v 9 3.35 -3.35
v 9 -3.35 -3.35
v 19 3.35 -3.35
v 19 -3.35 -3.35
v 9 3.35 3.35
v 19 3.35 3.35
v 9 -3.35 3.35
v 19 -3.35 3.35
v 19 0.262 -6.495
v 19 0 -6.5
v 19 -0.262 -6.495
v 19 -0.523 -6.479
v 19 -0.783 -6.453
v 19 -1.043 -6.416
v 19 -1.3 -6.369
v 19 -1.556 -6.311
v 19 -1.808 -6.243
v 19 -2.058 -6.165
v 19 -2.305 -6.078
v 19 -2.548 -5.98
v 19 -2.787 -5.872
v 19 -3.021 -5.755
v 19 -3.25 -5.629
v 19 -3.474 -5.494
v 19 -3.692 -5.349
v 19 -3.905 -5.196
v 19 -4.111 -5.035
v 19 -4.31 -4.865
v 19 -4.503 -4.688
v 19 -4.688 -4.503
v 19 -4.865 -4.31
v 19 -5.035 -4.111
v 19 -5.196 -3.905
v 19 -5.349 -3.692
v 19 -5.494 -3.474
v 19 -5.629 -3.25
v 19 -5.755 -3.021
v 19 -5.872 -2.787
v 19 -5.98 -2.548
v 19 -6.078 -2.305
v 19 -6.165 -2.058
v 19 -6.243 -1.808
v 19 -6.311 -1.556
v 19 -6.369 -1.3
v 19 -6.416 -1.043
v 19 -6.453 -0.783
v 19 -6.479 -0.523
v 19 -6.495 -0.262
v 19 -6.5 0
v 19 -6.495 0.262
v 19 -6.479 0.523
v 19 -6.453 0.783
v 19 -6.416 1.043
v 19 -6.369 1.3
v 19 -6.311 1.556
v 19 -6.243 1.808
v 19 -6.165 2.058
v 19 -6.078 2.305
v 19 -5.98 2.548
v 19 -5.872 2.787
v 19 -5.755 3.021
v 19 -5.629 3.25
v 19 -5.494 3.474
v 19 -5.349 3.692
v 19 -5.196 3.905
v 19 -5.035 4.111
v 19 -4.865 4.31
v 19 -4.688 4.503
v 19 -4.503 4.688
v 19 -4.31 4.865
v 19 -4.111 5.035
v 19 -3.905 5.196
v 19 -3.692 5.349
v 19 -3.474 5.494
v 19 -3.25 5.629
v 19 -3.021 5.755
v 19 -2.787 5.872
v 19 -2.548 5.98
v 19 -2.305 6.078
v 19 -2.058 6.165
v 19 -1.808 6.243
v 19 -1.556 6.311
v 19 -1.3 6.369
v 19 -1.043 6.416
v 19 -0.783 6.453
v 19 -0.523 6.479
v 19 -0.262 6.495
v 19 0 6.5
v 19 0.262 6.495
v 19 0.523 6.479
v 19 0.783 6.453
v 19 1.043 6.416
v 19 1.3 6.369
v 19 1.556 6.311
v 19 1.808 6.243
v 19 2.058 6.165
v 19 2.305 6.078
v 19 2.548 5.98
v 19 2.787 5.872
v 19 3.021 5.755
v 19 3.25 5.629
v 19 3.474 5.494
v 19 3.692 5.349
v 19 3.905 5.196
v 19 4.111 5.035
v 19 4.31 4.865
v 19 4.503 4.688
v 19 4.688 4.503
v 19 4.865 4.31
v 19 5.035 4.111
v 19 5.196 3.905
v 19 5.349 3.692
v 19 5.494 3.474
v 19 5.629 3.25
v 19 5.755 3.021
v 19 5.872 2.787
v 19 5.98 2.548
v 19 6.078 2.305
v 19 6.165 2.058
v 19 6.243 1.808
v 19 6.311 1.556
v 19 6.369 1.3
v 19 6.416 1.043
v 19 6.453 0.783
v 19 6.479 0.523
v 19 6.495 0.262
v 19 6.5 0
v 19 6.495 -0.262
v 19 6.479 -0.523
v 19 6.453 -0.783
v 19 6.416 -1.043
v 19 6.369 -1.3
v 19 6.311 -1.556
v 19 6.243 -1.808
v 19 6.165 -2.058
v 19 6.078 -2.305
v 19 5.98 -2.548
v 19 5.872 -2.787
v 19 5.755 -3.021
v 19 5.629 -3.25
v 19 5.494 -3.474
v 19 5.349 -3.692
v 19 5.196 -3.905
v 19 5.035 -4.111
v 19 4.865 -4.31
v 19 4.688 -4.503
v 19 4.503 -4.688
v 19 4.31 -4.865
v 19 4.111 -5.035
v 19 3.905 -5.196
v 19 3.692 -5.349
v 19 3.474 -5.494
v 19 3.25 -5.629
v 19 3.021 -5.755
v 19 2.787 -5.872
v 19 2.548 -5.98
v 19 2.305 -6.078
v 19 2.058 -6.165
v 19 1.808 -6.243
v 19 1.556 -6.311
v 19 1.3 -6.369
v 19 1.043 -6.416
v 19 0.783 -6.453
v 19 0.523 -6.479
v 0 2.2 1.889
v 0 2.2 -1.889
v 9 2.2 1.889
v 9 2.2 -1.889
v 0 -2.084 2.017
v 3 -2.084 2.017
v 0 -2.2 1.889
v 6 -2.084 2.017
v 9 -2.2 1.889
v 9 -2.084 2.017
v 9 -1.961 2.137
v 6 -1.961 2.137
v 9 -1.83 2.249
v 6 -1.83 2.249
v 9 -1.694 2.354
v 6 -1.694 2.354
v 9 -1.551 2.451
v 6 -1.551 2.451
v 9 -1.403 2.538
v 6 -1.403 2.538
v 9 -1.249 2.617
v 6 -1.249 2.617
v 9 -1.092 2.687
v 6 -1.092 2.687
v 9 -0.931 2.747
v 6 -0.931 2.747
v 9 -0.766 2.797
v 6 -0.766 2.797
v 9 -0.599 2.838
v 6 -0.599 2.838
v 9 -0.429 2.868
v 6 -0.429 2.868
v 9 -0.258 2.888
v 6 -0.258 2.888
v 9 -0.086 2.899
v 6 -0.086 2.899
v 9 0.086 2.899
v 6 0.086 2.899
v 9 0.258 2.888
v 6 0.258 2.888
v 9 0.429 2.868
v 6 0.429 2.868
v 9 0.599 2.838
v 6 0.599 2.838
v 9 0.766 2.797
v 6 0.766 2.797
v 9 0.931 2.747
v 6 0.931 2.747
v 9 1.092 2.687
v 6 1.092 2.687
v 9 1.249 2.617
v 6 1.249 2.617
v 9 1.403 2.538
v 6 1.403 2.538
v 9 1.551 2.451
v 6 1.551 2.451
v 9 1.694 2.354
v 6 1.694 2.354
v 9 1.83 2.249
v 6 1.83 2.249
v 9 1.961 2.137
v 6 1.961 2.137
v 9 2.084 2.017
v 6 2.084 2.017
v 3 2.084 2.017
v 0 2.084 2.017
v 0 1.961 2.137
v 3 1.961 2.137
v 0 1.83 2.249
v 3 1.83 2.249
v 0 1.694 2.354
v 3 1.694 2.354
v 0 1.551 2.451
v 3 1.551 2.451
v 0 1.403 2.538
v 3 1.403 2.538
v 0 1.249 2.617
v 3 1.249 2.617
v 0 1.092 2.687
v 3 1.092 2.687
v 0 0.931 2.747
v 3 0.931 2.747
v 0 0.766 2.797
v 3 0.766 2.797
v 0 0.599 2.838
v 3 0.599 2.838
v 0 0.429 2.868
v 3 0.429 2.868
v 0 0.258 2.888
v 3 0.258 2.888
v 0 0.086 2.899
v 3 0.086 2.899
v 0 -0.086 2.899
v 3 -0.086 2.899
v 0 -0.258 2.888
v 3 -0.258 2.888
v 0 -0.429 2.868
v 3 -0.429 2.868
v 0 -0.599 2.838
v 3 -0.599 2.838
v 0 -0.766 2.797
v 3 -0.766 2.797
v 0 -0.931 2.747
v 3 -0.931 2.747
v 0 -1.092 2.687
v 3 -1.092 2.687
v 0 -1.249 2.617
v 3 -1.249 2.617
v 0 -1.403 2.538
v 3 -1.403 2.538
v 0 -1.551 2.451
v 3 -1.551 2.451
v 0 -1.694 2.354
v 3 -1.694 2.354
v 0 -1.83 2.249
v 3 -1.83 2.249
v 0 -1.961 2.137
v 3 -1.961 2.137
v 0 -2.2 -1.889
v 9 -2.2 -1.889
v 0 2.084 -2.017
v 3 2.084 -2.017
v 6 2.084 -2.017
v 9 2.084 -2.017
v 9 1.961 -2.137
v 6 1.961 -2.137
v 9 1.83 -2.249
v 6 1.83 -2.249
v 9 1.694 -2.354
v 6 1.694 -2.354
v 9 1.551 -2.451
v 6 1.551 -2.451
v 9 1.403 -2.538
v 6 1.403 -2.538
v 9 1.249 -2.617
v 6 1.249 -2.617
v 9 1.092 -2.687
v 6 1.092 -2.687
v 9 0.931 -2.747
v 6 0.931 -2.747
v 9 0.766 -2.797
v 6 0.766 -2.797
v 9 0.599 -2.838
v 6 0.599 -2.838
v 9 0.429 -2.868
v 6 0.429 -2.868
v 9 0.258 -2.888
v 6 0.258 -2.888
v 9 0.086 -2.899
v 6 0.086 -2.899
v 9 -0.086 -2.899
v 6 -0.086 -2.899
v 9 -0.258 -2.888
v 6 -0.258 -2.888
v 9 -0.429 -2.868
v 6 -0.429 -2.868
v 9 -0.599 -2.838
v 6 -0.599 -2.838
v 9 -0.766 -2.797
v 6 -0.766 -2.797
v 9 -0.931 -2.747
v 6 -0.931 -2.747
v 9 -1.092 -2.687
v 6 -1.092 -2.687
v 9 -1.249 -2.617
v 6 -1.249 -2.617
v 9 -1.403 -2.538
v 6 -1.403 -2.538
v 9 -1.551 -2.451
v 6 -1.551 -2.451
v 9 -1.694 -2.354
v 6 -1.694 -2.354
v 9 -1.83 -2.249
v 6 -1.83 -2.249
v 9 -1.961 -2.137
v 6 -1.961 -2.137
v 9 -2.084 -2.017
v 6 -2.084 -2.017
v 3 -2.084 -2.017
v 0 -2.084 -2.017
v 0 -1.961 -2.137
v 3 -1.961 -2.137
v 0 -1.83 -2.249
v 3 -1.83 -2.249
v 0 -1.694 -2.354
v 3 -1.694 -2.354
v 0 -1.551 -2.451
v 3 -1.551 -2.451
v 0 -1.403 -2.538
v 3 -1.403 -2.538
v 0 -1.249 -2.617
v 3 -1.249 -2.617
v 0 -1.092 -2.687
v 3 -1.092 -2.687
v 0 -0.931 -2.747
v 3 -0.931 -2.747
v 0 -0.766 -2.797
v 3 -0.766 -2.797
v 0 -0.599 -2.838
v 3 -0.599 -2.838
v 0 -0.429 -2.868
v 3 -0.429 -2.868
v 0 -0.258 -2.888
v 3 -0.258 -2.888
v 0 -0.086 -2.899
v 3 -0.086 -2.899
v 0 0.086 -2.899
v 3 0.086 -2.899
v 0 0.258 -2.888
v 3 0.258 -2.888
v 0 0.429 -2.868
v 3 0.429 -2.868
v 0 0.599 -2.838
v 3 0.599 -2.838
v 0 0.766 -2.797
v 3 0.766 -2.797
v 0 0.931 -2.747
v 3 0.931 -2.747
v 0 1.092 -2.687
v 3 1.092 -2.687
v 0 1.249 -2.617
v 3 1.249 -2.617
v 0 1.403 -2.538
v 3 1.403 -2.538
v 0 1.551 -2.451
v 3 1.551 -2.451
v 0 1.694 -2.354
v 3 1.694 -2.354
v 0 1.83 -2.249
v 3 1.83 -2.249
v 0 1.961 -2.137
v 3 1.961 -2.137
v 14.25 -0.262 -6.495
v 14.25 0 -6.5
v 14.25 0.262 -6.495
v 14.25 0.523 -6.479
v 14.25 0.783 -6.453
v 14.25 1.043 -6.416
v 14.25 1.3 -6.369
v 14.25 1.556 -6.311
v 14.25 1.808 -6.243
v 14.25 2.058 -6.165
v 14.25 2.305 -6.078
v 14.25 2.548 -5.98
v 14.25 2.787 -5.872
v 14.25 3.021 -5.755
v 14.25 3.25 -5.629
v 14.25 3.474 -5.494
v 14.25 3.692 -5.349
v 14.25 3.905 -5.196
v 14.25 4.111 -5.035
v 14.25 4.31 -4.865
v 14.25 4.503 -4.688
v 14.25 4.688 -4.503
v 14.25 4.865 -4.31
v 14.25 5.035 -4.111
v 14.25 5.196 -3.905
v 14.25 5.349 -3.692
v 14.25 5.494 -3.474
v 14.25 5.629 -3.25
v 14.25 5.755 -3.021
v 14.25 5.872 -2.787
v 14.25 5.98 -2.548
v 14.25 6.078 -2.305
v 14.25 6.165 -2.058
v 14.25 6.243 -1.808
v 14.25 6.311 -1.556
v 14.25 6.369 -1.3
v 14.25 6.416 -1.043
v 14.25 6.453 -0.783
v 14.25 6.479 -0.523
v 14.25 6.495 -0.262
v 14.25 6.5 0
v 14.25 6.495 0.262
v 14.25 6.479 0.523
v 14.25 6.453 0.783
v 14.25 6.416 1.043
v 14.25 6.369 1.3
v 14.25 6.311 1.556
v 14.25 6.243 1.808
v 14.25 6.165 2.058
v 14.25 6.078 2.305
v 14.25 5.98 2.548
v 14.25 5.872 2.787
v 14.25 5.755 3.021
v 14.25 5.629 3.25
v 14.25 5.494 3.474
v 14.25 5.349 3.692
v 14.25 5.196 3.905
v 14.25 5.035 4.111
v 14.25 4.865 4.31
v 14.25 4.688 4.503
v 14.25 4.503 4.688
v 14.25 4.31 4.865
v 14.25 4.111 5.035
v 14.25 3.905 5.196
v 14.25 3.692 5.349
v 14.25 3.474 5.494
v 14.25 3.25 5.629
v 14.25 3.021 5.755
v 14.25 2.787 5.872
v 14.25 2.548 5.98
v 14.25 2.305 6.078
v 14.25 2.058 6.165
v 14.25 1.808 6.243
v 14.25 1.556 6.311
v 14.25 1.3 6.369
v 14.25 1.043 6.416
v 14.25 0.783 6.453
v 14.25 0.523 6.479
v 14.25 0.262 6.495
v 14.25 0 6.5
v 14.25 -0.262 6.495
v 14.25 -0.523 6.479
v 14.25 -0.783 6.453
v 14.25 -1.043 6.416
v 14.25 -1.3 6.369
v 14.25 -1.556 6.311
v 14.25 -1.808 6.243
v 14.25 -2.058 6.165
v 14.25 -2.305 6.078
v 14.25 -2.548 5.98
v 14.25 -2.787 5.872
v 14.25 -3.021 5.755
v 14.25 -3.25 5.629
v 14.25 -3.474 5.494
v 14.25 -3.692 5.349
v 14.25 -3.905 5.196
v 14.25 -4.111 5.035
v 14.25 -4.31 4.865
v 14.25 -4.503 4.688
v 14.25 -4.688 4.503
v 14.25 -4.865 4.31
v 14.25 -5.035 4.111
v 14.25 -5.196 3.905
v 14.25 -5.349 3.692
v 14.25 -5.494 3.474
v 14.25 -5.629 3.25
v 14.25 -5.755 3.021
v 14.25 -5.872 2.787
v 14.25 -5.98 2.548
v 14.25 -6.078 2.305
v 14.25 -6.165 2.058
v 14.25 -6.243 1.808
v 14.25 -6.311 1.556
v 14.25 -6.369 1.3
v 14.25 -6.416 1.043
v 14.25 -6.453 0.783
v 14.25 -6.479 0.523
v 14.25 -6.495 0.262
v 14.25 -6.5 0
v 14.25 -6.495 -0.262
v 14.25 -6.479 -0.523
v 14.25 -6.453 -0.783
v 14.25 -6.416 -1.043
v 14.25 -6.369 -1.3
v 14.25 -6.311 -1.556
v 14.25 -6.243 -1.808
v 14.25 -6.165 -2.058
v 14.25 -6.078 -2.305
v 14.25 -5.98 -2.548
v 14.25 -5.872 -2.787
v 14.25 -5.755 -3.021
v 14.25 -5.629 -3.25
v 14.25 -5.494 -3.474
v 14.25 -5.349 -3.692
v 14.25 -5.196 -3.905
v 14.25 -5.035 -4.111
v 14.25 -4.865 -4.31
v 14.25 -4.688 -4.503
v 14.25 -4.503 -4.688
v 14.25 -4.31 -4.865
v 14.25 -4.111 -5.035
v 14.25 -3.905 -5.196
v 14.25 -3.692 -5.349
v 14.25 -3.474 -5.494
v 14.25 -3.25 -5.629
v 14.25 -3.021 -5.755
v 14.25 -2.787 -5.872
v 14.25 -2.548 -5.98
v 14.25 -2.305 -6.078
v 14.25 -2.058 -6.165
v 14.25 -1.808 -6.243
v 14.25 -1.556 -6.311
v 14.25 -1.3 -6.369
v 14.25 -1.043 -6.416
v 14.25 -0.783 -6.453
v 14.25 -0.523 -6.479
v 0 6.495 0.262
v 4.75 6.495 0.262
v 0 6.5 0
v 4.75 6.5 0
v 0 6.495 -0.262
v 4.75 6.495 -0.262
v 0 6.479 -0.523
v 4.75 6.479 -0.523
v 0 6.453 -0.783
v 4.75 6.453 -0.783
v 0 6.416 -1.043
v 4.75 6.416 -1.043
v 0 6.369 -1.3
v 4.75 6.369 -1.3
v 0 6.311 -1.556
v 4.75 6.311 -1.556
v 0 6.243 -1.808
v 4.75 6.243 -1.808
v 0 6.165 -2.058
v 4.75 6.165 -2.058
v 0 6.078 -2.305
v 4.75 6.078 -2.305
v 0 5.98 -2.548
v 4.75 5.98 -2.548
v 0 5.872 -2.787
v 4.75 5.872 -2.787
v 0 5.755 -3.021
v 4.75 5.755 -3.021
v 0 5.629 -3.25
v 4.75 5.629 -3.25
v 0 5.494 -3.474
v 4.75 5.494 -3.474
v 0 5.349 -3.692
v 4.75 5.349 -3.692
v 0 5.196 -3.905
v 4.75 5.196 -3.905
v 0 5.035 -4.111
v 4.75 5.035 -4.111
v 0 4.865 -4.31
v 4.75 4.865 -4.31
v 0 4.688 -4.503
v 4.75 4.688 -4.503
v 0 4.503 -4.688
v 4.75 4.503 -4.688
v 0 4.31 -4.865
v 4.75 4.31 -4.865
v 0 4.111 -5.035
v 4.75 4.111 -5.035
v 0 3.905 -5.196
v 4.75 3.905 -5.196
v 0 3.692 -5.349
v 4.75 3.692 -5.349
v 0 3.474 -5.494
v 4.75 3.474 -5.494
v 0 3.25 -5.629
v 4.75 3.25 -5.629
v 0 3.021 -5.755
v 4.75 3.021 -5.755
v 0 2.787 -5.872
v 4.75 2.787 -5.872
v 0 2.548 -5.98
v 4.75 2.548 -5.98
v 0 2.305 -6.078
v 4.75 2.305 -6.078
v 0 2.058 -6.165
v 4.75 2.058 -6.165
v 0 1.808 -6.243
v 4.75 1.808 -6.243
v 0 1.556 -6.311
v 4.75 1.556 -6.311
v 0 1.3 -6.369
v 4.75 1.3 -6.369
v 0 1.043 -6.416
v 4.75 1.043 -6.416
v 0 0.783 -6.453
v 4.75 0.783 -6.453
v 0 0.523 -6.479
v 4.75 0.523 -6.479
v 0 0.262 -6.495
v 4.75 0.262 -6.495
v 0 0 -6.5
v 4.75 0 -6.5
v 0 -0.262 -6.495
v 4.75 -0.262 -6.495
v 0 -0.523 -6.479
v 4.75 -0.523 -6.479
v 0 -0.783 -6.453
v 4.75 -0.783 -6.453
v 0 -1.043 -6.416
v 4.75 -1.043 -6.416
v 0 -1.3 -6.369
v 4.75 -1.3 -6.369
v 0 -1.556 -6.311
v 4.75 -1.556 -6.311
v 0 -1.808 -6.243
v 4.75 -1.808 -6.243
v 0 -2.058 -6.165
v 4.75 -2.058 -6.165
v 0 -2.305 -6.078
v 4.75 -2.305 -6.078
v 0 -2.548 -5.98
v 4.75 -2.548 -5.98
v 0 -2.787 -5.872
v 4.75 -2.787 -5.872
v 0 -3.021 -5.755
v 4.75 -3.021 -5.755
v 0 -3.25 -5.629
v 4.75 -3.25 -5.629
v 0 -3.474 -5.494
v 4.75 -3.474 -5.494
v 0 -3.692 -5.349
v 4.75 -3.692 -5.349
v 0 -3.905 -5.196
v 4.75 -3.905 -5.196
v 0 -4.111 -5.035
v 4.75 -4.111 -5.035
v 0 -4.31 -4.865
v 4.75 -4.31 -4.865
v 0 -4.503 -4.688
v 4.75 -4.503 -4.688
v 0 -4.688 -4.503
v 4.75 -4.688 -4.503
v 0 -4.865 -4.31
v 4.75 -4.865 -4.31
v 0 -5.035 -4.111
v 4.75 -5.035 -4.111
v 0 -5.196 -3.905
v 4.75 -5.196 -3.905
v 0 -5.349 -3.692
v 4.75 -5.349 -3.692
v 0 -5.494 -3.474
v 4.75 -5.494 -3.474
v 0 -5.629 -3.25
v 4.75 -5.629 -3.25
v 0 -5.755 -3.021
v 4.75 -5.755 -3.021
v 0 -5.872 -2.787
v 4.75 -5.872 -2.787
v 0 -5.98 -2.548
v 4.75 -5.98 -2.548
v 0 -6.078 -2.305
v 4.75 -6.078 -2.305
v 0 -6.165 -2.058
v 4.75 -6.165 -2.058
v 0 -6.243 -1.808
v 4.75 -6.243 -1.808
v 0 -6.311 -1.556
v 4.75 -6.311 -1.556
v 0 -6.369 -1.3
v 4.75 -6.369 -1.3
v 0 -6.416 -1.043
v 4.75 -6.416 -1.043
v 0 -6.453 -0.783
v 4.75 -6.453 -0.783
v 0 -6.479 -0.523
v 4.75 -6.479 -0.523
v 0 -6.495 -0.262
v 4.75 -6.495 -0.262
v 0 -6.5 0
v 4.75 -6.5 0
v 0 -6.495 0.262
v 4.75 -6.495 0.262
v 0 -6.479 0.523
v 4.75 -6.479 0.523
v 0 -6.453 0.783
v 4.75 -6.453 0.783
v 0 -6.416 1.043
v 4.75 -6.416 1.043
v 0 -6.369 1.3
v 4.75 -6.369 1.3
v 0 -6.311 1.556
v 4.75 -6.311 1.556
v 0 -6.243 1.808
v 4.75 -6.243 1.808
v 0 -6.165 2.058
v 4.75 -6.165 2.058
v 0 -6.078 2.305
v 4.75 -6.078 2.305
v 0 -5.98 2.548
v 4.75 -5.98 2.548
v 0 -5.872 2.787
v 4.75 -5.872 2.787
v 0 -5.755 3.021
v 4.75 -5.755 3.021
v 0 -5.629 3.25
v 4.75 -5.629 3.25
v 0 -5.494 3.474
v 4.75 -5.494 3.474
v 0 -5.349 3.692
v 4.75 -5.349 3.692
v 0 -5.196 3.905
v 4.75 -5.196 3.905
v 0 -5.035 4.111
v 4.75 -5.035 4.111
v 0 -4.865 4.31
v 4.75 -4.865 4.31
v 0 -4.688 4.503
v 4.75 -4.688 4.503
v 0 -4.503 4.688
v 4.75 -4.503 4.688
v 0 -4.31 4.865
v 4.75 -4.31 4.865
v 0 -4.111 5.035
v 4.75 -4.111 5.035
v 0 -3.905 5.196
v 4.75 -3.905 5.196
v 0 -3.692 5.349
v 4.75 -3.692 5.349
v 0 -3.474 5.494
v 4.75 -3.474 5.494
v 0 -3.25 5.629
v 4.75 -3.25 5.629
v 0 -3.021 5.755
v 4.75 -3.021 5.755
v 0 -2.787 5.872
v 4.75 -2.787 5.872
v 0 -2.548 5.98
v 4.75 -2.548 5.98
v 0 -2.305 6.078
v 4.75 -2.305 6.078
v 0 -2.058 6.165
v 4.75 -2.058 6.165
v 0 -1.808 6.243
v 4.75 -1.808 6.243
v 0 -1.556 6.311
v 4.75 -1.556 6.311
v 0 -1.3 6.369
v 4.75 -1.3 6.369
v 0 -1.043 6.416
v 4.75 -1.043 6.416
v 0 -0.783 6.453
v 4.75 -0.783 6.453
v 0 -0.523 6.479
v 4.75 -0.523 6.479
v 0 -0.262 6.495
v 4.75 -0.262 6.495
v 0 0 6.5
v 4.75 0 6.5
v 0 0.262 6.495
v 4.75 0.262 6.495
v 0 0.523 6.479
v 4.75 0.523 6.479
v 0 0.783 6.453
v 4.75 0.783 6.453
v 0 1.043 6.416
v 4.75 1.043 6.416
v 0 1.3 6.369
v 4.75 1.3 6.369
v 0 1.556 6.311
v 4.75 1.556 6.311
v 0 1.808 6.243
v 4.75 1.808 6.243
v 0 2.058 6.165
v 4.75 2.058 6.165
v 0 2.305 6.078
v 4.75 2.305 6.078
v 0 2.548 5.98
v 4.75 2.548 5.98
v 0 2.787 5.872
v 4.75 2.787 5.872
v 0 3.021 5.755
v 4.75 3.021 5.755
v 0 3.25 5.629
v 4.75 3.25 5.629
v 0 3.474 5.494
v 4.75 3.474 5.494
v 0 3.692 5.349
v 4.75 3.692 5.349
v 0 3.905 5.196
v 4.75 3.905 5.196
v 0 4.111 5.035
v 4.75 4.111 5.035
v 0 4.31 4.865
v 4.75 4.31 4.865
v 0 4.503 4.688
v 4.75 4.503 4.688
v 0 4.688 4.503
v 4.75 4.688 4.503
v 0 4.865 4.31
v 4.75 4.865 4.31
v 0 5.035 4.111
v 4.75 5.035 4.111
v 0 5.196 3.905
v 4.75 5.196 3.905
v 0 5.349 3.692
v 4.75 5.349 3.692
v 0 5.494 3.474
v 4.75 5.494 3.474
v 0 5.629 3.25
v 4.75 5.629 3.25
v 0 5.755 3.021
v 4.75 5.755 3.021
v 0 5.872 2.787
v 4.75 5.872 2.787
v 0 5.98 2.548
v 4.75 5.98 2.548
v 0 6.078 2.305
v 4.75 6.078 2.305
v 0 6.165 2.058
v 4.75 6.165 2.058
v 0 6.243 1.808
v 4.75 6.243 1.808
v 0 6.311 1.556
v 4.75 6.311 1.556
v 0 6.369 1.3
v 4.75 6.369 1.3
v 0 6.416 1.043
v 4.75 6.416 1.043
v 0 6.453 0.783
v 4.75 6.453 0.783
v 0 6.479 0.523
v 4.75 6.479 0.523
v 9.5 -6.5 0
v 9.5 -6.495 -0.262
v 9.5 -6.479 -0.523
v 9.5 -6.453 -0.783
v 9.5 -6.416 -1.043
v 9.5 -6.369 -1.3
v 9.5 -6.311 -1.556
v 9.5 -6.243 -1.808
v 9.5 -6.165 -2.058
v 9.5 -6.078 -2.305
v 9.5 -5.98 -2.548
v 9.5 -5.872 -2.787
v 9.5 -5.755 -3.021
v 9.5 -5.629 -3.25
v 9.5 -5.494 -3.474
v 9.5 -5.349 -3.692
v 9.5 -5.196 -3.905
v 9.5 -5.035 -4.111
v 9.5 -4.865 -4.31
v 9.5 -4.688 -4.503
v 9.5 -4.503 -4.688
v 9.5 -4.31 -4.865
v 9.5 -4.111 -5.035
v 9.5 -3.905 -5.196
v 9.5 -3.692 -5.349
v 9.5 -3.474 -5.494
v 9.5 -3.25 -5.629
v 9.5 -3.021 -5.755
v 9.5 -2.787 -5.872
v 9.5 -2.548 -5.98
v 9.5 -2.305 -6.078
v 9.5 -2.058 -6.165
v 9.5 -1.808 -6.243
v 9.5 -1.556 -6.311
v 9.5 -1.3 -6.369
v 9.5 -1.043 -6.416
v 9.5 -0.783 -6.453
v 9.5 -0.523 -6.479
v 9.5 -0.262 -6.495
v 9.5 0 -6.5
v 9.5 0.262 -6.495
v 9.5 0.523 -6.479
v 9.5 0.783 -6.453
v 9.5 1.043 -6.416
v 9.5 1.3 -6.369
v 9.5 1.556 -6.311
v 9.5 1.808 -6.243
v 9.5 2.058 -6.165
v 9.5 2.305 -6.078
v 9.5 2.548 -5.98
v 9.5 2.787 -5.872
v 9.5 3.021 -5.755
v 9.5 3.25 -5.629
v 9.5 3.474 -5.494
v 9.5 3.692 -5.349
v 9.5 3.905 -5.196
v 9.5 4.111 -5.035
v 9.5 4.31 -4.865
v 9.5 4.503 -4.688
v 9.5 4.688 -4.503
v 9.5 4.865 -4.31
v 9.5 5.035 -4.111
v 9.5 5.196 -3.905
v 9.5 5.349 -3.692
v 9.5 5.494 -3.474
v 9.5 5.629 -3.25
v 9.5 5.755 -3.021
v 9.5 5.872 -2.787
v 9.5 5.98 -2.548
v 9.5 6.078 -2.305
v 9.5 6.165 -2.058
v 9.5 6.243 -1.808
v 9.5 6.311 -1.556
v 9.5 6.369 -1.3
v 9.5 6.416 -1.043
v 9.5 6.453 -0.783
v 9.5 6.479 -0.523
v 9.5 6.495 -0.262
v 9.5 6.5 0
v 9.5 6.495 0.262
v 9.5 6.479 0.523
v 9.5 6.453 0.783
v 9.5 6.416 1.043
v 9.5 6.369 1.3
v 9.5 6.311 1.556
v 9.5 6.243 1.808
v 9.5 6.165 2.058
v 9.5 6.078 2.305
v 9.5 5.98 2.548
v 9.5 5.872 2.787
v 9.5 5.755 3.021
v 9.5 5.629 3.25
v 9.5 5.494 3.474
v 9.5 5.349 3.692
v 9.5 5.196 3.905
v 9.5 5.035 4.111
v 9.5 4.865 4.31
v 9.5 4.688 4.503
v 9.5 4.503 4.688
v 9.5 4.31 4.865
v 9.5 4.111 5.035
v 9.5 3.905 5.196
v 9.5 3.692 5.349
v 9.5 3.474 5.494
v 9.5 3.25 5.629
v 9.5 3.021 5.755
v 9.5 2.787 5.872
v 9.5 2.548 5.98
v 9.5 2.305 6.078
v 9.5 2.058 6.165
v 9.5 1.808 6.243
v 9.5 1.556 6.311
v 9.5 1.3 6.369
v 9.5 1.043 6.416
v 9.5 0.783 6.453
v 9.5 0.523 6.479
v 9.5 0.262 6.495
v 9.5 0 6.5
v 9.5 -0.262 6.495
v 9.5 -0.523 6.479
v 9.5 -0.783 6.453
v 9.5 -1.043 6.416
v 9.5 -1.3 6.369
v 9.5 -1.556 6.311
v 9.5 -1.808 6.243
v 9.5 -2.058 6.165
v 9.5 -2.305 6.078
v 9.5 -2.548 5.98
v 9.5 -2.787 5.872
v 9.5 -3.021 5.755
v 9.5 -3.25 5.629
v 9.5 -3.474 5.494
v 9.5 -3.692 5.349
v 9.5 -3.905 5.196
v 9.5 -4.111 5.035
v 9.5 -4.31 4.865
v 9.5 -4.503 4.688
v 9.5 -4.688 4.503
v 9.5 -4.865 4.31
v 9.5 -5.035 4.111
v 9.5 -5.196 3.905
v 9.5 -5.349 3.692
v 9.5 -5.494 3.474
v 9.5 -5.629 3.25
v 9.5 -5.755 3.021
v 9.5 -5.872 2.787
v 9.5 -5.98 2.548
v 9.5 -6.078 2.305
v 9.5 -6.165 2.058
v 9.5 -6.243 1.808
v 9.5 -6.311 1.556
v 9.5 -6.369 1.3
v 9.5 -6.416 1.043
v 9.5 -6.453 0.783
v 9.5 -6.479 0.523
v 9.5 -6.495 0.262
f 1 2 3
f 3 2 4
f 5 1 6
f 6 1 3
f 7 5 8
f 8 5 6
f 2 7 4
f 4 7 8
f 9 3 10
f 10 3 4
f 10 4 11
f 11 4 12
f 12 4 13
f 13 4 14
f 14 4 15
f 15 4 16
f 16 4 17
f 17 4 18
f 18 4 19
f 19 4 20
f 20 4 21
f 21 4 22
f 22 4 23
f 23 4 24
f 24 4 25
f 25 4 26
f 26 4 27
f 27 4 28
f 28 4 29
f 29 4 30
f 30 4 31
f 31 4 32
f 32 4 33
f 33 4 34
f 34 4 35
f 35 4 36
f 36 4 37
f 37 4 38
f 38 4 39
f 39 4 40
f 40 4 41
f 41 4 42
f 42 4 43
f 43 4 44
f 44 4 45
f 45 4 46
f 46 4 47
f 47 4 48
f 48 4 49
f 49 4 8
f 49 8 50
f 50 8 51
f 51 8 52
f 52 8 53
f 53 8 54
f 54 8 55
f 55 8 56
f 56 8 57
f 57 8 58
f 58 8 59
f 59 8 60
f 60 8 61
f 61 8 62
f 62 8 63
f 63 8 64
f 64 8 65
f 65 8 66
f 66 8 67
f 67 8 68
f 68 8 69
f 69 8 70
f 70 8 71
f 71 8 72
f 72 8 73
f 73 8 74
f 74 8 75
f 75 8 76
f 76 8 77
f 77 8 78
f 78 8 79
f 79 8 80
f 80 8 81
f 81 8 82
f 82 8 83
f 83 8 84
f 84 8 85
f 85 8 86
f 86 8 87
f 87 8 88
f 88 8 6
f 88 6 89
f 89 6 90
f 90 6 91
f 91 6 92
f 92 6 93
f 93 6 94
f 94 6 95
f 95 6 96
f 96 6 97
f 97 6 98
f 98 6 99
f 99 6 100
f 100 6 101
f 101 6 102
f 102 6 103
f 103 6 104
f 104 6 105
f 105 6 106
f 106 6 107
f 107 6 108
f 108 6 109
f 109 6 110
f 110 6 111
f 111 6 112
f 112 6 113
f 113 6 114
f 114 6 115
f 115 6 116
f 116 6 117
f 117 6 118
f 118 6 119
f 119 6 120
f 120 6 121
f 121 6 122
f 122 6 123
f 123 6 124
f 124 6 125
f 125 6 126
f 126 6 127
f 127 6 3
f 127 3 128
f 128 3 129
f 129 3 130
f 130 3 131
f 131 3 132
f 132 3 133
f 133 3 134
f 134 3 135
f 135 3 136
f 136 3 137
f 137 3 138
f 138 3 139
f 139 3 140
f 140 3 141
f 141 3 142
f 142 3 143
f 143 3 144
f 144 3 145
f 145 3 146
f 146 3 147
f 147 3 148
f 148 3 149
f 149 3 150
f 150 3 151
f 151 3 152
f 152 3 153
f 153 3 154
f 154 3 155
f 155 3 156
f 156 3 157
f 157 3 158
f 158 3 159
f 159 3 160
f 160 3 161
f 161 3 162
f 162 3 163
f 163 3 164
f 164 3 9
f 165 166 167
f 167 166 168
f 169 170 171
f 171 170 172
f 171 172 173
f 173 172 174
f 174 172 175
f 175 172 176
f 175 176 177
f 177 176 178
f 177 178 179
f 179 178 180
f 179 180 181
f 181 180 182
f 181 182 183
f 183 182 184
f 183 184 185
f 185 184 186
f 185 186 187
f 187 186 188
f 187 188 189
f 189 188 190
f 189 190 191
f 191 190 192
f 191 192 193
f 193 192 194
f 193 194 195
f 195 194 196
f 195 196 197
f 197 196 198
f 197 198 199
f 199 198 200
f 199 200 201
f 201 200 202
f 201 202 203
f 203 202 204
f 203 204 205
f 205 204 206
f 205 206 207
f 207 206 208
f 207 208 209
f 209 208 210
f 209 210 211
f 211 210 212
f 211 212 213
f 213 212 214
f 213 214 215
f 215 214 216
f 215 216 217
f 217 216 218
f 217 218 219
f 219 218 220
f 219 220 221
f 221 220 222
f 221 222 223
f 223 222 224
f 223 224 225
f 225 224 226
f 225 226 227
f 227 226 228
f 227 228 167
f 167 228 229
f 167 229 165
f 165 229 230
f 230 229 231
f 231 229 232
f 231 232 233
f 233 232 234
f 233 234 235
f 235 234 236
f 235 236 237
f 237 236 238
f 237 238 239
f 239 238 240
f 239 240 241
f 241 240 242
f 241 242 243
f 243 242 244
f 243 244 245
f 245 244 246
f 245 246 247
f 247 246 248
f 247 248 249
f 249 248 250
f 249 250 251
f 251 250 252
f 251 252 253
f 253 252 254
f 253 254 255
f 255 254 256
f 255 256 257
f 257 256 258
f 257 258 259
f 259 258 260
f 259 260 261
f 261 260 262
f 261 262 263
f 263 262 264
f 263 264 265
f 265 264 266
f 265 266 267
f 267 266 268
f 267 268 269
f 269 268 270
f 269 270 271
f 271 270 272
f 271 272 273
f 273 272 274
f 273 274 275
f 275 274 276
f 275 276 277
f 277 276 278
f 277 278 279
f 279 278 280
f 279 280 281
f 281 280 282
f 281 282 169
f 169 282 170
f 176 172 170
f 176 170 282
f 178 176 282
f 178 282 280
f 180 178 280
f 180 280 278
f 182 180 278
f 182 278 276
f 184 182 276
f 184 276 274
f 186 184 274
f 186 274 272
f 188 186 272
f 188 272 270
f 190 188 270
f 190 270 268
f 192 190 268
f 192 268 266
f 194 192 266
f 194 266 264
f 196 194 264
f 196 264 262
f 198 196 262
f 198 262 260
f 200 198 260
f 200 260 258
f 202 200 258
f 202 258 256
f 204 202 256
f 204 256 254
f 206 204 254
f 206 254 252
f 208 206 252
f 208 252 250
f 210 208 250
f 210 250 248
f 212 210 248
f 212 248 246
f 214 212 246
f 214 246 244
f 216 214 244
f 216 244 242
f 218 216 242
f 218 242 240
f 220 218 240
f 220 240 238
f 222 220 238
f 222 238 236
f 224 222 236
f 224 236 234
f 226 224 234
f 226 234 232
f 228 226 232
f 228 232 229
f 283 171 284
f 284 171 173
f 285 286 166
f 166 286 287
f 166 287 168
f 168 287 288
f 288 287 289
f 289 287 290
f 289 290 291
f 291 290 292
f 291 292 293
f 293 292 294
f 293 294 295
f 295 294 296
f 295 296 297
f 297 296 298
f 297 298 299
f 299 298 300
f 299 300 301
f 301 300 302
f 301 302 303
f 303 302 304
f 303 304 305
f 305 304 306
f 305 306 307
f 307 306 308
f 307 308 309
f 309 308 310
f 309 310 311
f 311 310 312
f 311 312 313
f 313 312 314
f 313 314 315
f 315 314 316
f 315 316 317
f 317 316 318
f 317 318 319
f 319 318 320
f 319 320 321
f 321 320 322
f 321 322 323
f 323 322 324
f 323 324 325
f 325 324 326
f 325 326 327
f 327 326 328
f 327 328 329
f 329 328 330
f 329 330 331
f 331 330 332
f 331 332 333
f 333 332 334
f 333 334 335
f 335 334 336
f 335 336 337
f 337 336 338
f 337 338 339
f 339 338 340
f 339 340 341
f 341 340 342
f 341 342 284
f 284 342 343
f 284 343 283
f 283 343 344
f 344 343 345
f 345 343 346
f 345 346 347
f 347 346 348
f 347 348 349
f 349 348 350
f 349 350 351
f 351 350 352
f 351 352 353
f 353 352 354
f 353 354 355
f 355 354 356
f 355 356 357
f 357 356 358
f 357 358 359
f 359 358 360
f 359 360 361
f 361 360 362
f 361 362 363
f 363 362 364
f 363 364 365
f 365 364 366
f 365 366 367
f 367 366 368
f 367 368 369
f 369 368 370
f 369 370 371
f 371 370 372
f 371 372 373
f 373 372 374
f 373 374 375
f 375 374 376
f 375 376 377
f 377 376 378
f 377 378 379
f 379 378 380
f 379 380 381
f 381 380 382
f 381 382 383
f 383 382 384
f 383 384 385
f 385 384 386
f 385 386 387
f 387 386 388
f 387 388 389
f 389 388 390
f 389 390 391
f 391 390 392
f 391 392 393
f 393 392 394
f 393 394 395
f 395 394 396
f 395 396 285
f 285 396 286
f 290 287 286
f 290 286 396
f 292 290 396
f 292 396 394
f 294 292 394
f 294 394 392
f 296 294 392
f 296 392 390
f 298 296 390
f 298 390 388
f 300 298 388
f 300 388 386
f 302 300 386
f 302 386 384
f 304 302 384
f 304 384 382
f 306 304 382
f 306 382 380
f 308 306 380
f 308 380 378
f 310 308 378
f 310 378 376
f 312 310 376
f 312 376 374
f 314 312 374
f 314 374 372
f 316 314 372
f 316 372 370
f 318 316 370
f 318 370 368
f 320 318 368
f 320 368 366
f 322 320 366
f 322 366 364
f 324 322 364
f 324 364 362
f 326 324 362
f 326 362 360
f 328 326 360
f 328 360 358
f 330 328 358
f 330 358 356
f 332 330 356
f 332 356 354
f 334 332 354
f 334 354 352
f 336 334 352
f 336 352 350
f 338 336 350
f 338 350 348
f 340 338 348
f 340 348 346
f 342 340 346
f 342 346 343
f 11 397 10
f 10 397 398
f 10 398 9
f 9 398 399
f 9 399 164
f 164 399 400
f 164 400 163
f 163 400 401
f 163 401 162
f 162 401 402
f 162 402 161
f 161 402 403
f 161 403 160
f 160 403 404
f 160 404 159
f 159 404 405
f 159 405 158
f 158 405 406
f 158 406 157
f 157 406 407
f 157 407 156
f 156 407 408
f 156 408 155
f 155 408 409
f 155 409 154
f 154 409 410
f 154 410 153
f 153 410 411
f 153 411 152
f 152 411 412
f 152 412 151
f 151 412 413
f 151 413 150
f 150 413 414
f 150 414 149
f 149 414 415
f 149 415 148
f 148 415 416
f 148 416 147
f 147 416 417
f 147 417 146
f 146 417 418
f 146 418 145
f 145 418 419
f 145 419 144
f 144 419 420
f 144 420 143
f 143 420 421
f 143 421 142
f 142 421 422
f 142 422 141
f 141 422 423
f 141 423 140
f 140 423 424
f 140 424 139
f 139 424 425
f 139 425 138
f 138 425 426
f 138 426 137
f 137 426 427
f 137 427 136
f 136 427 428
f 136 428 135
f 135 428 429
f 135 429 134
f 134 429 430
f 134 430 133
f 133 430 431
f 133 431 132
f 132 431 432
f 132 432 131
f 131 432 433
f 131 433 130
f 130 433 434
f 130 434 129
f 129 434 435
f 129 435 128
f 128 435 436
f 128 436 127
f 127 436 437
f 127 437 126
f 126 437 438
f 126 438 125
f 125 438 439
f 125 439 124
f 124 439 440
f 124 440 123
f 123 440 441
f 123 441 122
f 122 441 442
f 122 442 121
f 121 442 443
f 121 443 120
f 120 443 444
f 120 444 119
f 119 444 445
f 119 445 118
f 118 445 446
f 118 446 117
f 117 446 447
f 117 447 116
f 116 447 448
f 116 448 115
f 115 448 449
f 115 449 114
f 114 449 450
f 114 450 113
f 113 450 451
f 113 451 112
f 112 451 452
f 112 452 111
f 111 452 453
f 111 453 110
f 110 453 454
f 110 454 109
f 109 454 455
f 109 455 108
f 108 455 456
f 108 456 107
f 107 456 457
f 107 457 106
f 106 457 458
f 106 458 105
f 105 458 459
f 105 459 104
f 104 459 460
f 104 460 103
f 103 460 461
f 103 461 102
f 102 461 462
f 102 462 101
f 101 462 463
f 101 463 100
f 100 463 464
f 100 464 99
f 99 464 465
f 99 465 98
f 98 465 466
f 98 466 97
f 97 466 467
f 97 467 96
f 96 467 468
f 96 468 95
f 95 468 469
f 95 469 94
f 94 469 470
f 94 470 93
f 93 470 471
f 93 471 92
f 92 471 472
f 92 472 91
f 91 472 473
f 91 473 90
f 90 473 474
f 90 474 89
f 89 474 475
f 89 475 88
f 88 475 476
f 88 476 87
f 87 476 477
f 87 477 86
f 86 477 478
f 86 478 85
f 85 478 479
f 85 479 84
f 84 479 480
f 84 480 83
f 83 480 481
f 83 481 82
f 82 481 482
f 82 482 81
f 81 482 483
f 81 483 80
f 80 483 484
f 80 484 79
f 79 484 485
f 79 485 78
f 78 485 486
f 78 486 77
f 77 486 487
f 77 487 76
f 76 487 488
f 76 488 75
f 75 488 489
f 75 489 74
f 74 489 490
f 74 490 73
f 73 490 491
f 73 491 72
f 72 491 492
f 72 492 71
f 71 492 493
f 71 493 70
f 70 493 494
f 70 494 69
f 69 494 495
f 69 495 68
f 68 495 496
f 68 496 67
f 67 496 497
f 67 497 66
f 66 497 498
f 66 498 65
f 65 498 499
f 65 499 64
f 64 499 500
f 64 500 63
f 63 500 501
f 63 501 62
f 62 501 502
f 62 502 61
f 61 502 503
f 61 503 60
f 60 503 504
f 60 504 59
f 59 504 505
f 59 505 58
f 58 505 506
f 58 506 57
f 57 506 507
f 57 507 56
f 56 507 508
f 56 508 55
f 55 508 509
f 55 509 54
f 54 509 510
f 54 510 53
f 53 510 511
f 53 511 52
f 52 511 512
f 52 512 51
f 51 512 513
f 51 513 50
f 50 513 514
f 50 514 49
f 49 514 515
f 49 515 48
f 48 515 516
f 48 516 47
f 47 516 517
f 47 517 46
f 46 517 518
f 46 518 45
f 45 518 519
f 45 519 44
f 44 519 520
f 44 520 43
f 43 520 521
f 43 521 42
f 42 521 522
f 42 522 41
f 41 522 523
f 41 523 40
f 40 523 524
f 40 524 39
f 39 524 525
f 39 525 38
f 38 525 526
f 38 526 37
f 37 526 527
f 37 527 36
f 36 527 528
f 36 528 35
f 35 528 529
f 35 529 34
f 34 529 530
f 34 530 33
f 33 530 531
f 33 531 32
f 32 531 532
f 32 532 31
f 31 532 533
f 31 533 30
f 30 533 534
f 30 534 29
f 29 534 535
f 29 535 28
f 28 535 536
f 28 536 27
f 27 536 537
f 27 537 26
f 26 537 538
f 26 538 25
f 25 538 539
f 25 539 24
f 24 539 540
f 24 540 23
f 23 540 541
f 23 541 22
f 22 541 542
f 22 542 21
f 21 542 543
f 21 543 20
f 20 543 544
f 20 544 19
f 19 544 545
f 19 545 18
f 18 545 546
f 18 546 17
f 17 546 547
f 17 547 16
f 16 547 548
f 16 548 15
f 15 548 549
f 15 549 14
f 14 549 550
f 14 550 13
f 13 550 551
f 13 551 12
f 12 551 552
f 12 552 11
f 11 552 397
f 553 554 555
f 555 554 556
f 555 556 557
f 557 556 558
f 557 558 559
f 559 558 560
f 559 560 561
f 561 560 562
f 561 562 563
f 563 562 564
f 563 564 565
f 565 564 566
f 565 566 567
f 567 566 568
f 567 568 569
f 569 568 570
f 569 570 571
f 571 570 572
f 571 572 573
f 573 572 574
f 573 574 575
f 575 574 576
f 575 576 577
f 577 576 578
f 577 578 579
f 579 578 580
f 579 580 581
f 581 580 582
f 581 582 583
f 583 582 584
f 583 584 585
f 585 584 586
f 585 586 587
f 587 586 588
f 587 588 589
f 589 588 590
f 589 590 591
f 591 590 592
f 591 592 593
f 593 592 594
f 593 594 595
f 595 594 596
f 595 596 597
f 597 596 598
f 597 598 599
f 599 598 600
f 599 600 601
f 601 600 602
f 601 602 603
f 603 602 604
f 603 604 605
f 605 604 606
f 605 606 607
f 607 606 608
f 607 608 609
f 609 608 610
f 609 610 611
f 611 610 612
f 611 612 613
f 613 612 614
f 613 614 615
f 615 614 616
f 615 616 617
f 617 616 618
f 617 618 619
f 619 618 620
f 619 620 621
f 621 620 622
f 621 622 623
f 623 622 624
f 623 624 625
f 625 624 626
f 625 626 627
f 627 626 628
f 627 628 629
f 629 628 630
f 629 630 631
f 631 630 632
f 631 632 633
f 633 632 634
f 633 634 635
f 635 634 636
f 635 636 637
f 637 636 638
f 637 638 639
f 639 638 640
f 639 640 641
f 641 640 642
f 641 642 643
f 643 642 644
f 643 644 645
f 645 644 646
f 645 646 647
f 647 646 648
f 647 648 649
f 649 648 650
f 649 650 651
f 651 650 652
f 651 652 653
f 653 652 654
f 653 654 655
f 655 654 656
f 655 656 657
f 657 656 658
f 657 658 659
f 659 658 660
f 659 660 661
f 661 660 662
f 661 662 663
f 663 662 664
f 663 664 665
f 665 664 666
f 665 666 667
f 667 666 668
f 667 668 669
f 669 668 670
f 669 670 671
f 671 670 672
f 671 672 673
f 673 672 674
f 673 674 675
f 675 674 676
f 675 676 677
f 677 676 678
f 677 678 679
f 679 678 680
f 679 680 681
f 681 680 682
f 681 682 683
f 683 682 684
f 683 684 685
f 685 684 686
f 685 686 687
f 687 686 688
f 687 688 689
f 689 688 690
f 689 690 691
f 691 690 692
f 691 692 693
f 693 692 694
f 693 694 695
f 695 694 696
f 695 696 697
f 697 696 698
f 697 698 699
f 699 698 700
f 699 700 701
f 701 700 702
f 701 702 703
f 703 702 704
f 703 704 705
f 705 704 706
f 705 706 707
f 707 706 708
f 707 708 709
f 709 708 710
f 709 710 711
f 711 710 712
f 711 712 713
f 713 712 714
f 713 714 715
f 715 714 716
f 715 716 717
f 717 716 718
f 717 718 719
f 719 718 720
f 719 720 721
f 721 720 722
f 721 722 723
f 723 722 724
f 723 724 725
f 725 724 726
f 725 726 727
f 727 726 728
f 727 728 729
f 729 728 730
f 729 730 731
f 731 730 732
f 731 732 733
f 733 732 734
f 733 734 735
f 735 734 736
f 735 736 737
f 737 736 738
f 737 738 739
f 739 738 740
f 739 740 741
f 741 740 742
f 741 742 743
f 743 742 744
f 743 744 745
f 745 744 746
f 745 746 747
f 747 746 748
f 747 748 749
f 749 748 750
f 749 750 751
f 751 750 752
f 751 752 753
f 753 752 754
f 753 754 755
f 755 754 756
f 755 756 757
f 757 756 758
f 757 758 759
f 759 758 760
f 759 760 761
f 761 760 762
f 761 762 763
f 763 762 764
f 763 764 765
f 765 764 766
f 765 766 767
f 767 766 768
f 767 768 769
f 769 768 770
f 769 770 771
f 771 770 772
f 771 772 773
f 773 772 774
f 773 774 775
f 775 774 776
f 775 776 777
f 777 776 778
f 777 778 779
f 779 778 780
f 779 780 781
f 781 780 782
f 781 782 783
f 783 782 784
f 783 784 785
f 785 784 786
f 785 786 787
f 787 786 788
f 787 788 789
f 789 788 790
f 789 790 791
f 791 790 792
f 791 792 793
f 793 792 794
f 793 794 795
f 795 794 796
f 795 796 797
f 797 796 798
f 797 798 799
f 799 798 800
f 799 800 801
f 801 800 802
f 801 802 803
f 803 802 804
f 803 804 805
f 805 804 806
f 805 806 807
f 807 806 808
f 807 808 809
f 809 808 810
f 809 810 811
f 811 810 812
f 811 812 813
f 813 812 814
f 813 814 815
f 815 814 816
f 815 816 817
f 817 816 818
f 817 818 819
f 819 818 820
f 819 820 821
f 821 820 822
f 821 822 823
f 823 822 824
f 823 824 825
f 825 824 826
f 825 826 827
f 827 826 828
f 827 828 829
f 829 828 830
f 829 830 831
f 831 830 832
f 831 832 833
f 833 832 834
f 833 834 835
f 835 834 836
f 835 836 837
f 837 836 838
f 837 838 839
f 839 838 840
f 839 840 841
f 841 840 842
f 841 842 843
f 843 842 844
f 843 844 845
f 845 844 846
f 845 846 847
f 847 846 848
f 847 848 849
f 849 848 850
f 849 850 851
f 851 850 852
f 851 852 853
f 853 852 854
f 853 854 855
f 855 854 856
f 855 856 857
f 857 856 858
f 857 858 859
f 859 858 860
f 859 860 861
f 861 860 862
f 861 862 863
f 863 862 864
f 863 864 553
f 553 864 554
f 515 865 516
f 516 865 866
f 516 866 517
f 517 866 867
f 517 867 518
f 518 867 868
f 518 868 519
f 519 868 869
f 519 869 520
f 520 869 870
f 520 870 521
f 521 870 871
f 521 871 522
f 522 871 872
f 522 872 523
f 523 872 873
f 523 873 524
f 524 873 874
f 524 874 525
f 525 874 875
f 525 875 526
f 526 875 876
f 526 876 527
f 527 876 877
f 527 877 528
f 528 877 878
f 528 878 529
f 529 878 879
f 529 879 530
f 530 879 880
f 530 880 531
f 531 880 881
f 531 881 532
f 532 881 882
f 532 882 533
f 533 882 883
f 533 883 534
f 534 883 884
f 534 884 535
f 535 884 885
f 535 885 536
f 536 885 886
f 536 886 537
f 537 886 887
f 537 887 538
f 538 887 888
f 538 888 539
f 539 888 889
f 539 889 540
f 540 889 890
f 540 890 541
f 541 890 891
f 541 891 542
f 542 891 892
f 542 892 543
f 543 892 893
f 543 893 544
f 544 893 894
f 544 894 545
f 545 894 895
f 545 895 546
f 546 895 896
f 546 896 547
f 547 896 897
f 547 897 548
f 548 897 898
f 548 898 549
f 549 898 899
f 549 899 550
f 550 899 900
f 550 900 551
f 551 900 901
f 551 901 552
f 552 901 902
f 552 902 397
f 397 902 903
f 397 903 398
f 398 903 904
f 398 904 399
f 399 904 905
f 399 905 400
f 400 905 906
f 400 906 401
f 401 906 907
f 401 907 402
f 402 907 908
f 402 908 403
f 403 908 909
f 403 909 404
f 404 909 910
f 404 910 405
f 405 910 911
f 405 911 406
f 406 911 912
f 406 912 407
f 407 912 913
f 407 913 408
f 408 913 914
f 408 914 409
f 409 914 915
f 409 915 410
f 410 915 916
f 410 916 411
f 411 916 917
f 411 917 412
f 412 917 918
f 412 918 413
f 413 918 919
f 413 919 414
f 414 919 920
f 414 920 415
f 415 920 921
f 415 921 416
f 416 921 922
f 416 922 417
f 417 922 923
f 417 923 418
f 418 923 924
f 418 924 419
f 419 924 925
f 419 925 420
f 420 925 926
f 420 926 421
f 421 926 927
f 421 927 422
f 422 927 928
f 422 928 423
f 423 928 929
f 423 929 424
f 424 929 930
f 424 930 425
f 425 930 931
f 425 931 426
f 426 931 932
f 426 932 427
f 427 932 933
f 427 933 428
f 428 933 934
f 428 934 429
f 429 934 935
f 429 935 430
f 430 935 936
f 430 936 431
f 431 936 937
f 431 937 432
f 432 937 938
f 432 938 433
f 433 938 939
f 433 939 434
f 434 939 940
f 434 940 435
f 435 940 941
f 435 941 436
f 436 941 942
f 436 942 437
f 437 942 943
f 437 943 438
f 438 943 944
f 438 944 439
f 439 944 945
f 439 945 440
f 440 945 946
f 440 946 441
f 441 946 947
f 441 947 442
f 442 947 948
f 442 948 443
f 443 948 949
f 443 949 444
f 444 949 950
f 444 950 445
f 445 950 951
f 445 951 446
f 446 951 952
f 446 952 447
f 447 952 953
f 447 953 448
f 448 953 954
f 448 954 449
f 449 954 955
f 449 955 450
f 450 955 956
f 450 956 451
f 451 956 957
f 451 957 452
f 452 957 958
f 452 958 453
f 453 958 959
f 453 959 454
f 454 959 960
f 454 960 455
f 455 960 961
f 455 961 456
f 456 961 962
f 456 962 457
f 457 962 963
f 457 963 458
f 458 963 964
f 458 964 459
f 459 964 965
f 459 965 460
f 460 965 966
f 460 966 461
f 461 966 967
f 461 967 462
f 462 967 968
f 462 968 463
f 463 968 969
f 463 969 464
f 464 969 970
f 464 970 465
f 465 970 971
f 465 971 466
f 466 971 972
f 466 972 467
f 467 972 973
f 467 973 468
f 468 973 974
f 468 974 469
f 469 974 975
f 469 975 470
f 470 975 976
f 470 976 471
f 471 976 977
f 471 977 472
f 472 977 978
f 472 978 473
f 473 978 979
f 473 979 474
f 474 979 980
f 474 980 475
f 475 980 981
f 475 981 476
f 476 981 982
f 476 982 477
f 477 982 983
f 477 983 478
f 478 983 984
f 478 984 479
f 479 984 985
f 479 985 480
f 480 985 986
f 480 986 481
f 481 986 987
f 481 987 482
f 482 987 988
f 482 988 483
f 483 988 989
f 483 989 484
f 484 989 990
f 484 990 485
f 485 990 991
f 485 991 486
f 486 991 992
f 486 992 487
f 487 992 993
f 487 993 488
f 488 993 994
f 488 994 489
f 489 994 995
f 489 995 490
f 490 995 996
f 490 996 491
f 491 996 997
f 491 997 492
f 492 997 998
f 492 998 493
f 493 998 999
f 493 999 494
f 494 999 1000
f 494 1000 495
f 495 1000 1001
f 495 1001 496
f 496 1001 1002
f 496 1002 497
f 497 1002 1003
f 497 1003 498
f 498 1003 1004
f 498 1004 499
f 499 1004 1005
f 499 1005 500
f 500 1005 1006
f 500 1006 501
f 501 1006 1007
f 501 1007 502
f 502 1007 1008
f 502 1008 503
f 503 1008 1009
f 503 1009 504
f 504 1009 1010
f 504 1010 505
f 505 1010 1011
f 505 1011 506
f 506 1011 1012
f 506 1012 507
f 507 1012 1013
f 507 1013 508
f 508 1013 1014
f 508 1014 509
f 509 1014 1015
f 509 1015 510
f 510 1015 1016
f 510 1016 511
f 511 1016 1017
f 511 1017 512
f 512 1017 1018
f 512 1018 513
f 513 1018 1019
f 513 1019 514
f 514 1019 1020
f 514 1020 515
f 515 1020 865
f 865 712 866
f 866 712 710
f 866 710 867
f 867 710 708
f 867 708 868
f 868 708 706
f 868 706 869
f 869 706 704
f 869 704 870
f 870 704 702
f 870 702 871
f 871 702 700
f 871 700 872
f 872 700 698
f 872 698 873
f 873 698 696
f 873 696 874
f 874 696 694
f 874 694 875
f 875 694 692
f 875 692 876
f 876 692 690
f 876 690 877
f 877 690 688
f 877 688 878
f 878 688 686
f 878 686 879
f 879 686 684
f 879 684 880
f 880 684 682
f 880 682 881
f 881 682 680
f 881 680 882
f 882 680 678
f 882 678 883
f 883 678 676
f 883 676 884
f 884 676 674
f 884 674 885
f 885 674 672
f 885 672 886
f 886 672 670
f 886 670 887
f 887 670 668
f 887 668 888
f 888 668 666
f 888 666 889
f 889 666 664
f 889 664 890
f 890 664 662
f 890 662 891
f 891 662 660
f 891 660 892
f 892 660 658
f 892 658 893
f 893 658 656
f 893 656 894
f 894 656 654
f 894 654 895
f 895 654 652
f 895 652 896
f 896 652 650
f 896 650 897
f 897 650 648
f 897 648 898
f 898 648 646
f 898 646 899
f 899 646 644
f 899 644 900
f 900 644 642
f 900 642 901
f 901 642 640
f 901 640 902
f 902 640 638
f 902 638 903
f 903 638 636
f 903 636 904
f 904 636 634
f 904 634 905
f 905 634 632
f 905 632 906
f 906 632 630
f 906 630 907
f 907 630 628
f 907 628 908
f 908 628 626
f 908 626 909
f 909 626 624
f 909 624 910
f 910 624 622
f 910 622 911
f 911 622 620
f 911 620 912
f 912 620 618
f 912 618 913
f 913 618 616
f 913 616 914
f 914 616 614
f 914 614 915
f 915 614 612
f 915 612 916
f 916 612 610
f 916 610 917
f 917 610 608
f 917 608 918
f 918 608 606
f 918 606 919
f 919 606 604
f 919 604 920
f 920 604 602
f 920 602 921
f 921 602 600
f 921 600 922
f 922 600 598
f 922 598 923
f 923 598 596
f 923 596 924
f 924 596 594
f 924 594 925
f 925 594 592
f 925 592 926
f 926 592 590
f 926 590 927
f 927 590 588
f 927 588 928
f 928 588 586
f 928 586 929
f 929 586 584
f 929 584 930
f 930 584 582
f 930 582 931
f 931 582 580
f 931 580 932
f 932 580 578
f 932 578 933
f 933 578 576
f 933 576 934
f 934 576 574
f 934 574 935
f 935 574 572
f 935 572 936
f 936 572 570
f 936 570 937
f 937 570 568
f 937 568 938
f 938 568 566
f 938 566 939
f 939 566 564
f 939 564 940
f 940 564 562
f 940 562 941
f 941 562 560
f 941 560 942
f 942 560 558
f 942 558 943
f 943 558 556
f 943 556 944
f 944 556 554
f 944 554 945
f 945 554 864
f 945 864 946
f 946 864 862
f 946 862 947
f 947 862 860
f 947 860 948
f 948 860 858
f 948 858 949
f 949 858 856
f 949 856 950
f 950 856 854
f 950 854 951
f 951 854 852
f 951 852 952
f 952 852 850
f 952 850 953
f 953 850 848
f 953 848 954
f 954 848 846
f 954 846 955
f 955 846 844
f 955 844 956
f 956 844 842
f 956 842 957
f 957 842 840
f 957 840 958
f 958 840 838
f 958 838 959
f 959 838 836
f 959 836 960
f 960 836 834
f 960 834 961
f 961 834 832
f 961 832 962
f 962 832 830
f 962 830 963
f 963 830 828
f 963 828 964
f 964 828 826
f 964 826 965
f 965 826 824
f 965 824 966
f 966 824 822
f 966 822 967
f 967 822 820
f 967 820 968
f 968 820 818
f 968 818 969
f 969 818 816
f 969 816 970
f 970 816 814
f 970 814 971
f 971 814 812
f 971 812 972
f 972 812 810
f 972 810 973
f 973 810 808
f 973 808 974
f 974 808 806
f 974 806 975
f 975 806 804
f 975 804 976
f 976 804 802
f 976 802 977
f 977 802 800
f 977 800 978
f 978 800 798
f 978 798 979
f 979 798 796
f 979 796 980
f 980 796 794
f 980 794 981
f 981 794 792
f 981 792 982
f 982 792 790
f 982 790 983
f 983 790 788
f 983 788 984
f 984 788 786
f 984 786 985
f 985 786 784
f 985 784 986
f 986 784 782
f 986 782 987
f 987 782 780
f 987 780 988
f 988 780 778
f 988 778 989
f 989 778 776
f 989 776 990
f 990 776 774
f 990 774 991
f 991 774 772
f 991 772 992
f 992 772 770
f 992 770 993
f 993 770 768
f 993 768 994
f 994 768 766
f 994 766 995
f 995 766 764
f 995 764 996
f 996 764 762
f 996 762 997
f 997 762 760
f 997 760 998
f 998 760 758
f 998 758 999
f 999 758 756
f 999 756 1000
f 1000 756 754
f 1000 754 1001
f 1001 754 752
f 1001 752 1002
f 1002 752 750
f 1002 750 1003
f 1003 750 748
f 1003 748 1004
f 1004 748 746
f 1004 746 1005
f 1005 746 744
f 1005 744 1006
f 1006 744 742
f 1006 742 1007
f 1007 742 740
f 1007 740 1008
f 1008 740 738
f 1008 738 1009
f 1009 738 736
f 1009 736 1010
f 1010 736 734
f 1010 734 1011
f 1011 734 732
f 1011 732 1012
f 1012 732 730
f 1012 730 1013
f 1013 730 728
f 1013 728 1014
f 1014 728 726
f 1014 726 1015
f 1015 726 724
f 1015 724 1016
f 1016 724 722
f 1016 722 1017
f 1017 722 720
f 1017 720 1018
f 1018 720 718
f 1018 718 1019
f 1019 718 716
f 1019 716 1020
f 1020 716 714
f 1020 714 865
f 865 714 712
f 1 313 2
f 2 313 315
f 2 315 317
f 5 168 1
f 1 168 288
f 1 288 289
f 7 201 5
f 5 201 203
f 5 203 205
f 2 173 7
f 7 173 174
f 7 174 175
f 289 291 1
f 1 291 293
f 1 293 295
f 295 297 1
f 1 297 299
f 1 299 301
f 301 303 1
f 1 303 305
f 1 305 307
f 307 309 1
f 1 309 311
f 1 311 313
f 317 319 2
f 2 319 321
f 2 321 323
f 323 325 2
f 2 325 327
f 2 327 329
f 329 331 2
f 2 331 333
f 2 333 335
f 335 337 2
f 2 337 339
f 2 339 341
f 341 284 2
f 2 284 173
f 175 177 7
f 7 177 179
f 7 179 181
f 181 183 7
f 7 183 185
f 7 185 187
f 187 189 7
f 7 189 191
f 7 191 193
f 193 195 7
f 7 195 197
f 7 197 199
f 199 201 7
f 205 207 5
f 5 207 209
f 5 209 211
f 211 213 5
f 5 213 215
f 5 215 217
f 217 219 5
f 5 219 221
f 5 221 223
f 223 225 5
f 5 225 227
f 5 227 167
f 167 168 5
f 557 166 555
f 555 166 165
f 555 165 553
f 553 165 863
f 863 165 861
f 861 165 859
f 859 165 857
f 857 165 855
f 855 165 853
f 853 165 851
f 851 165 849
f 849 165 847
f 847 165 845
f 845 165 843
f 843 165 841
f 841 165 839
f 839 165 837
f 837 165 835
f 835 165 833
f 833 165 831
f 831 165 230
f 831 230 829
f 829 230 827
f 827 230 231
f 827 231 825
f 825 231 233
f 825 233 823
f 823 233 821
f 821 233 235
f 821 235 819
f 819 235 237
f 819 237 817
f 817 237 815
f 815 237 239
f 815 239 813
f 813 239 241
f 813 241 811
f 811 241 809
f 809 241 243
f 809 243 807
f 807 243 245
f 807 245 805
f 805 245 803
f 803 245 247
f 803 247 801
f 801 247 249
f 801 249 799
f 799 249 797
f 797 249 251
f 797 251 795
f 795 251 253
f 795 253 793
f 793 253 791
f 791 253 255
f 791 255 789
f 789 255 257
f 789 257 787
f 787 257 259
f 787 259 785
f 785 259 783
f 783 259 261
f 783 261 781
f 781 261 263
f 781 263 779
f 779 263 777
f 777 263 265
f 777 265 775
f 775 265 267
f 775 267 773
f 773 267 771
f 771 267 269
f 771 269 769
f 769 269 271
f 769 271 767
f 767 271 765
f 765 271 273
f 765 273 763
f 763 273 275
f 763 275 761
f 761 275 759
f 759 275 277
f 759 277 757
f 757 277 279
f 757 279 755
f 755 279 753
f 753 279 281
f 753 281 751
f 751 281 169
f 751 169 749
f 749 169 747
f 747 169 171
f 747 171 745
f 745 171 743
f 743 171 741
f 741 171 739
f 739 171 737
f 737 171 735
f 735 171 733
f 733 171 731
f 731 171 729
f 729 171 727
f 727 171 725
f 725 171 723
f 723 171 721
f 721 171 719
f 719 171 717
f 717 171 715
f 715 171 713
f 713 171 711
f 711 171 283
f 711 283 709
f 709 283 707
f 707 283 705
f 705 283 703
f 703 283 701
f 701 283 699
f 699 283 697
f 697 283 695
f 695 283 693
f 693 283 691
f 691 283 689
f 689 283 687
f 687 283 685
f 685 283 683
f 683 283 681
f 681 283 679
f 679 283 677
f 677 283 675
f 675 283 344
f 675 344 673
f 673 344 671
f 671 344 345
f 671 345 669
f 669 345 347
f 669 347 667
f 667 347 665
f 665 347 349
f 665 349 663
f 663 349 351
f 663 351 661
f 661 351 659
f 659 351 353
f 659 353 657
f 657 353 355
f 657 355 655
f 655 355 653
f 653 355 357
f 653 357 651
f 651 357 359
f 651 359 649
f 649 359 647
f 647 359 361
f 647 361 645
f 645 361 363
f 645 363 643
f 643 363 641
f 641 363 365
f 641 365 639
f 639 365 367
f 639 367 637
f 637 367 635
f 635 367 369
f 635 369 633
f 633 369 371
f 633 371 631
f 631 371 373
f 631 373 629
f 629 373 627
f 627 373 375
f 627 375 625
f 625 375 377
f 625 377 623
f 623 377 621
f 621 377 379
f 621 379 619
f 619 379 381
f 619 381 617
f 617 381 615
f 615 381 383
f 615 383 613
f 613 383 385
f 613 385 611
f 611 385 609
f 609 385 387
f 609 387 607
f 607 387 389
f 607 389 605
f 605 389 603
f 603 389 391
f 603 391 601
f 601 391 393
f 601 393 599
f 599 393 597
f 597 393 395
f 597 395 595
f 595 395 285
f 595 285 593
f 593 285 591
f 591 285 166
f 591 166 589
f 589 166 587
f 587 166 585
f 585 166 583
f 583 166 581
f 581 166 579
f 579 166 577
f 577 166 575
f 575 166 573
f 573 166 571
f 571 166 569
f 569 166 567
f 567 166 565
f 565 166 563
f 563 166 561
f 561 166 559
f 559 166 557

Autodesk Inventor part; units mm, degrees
ref_plane "YZ Plane" through (0, 0, 0) normal (1, 0, 0) x (0, 1, 0)
ref_plane "XZ Plane" through (0, 0, 0) normal (0, 1, 0) x (-1, 0, 0)
ref_plane "XY Plane" through (0, 0, 0) normal (0, 0, 1) x (1, 0, 0)
sketch "Boceto1" plane through (0, 0, 0) normal (1, 0, 0) x (0, 1, 0)
  circle A0 centre (0, 0) radius 2.9
  line L0 (2.2, 1.8894) -> (2.2, -1.8894)
  line L1 (-2.2, 1.8894) -> (-2.2, -1.8894)
  circle A1 centre (0, 0) radius 6.5
  dimension "d0" = 5.8
  dimension "d1" = 2.2
  dimension "d2" = 2.2
  dimension "d3" = 13
extrude "Extrusión1" add sketch "Boceto1" along normal blind 9 contours A0 L0 | L1 A0 | A1
sketch "Boceto2" plane through (9, 0, 0) normal (1, 0, 0) x (0, 0, -1)
  circle A0 centre (0, 0) radius 6.5
  line L0 (3.35, -3.35) -> (-3.35, -3.35)
  line L1 (-3.35, -3.35) -> (-3.35, 3.35)
  line L2 (-3.35, 3.35) -> (3.35, 3.35)
  line L3 (3.35, 3.35) -> (3.35, -3.35)
  line L4 (3.35, -3.35) -> (-3.35, 3.35) construction
  line L5 (-3.35, -3.35) -> (3.35, 3.35) construction
  dimension "d6" = 6.7
  dimension "d7" = 6.7
extrude "Extrusión2" add sketch "Boceto2" along normal blind 10
properties part number "Adaptador"
